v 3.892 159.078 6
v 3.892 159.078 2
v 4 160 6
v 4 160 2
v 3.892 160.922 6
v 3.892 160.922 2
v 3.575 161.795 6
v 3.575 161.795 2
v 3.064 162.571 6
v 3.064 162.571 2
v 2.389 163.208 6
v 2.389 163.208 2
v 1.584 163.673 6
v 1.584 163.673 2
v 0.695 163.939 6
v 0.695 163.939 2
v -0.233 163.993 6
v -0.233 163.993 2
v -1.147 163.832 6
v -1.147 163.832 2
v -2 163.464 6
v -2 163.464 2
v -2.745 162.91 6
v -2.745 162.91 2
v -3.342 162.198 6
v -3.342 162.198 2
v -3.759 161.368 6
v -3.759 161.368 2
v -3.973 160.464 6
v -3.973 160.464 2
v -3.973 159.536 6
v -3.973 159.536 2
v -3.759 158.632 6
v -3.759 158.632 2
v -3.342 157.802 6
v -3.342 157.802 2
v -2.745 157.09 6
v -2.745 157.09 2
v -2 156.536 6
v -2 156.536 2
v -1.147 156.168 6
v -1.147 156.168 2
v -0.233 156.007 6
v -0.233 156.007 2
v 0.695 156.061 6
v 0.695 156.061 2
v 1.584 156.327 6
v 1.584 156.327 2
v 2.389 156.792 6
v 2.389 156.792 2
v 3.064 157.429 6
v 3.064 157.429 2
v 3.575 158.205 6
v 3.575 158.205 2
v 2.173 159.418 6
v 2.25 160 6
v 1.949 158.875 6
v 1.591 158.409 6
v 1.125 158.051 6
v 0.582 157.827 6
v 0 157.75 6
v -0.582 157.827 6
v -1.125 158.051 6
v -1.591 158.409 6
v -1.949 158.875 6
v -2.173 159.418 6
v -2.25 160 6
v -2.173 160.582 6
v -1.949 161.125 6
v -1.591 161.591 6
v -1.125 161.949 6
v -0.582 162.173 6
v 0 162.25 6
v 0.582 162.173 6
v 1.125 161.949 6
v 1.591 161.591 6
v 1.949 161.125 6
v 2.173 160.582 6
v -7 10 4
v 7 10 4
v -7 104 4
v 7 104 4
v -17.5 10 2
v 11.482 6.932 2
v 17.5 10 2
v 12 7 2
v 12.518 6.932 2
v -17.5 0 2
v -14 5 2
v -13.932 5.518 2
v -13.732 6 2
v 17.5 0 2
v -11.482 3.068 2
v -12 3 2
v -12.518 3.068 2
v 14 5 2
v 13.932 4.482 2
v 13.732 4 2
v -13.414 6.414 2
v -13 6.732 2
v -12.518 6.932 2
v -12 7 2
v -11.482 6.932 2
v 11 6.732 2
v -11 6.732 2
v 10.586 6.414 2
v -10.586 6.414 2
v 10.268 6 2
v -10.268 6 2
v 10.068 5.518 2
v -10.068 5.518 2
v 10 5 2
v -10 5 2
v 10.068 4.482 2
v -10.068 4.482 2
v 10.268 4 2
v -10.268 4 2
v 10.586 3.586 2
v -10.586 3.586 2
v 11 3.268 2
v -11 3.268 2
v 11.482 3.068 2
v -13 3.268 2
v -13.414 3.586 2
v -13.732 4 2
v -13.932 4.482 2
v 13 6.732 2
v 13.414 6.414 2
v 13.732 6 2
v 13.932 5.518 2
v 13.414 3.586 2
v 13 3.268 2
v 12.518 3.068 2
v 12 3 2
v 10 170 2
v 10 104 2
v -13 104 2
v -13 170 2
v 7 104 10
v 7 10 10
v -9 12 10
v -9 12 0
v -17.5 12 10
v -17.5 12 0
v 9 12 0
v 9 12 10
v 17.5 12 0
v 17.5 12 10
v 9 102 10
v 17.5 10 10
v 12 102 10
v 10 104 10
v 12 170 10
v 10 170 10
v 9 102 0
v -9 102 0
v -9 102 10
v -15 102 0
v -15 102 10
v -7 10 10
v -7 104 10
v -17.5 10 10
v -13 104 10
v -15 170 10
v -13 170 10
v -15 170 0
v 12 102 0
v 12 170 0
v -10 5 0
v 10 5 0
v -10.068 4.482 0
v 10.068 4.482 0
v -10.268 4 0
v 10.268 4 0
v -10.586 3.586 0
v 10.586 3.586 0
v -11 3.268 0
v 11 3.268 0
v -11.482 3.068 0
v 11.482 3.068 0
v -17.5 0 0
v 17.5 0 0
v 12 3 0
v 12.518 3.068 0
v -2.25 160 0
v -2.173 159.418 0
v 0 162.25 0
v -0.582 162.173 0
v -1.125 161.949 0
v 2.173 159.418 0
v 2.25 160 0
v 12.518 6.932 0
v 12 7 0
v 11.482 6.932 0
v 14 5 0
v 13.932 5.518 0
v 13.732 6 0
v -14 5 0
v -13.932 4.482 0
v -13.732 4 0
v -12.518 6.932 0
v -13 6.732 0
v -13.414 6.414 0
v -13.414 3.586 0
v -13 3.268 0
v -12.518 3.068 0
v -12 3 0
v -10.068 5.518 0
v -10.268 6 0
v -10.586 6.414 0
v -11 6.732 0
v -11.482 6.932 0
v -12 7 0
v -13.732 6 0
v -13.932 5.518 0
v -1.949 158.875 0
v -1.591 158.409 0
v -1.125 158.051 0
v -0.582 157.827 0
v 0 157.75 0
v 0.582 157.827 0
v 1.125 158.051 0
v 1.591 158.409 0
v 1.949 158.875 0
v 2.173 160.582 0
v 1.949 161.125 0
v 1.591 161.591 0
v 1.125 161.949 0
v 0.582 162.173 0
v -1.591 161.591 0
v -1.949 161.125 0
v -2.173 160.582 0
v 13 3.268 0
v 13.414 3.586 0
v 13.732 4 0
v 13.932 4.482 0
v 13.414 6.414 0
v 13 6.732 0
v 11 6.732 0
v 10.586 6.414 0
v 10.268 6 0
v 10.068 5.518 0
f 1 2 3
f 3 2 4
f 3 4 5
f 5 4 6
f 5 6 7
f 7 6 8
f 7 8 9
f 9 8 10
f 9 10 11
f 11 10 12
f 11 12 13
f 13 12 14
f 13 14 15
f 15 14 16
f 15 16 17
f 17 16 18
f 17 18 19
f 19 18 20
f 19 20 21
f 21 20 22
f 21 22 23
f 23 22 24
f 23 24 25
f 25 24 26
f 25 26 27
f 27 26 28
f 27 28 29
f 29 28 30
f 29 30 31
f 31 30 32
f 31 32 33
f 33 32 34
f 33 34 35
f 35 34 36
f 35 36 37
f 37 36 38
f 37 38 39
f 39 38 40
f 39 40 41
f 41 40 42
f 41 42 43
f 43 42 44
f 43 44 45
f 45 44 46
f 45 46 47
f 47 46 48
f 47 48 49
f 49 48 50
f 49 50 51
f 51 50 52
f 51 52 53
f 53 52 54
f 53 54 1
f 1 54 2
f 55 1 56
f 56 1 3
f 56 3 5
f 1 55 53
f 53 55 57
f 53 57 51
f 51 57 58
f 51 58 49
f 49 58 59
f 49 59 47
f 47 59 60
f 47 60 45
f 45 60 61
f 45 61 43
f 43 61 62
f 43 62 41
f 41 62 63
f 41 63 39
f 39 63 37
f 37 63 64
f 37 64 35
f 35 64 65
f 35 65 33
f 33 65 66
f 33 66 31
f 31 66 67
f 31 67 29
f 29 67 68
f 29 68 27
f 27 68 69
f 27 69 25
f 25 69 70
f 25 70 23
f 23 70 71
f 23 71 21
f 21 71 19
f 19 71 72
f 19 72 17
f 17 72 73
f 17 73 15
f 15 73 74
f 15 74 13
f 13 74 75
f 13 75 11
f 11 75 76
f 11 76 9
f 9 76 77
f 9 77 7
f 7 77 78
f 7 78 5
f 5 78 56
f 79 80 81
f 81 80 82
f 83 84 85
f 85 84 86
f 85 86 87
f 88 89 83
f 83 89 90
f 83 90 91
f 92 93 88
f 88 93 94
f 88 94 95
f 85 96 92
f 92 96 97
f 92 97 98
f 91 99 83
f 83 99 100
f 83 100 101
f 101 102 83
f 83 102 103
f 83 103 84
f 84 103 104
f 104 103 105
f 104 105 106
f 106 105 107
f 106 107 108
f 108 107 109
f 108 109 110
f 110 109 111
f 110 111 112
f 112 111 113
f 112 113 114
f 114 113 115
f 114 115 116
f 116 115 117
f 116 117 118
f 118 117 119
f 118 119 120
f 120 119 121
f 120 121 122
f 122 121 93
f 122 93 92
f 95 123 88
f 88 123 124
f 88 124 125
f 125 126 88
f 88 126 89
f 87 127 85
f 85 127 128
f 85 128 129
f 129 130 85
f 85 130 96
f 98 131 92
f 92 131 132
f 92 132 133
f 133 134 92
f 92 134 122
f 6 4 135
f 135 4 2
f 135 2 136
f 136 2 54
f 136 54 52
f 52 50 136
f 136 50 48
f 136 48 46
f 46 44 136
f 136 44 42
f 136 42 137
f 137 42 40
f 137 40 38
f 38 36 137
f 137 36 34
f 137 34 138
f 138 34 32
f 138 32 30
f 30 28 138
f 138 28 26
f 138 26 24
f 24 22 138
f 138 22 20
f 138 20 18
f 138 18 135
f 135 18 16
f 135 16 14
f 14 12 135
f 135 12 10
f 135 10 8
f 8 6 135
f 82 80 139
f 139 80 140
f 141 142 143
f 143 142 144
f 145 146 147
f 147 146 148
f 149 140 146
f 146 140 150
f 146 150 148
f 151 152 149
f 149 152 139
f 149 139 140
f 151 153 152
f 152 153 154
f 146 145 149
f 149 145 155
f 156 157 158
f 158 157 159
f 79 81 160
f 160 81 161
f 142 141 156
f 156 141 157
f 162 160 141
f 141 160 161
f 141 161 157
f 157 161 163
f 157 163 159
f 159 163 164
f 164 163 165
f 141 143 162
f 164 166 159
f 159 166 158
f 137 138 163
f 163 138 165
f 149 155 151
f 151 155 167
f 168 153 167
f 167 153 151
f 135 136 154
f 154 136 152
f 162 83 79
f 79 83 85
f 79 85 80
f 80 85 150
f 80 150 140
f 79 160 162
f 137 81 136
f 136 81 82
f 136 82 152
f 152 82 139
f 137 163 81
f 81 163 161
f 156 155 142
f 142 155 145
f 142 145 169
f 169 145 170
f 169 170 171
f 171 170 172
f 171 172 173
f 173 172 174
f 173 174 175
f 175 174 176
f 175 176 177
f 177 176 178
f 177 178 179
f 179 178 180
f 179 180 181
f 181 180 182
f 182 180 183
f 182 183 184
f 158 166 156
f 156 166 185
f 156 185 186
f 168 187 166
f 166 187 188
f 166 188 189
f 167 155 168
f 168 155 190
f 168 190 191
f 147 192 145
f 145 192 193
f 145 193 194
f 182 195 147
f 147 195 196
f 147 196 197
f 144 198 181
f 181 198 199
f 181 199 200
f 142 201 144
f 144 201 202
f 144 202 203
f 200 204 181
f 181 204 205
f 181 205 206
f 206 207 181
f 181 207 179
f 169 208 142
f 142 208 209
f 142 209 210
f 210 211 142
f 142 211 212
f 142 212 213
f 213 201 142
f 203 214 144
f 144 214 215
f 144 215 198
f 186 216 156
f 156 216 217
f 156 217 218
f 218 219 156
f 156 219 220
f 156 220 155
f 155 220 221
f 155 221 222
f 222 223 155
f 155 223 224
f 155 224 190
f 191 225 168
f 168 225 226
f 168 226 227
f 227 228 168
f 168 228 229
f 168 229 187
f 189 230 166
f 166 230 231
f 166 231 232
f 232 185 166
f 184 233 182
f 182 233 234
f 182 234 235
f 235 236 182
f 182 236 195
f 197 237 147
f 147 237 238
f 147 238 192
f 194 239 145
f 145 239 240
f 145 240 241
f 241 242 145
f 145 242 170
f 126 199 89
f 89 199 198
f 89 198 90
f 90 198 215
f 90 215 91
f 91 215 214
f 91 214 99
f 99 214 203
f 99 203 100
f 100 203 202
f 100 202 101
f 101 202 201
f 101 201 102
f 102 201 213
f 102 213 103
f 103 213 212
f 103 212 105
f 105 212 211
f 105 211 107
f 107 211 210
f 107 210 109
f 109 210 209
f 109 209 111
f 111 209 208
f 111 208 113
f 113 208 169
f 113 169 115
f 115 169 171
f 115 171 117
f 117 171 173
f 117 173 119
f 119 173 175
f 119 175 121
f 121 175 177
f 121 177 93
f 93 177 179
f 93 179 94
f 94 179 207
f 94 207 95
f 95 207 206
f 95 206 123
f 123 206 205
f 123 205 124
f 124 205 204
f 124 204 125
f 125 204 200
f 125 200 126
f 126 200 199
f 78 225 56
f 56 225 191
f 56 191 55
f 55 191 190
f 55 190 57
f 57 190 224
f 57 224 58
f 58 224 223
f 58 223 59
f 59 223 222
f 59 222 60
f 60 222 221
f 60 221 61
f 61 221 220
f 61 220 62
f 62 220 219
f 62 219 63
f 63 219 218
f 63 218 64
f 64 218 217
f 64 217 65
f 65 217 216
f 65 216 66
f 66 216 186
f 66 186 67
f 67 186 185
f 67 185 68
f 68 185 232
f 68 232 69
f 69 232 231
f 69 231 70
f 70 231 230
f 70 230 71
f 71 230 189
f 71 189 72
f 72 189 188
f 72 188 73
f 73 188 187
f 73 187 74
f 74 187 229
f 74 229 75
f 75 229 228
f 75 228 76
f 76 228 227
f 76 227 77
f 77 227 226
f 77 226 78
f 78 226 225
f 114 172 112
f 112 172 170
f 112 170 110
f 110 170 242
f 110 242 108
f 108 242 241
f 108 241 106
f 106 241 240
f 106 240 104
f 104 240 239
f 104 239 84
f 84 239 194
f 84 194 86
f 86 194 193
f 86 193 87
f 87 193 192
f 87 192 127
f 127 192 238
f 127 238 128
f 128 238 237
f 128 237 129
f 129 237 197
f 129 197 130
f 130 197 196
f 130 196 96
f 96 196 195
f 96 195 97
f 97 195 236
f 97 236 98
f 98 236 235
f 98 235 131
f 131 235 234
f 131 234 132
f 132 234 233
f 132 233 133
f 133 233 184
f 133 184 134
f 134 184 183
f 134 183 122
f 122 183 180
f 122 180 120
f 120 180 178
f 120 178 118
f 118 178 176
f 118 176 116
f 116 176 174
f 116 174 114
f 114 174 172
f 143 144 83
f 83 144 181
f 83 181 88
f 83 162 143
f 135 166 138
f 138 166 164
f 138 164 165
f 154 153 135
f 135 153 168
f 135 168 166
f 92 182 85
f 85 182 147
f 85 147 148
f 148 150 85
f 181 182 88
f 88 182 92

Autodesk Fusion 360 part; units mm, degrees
sketch "スケッチ1" plane through (0, 0, 0) normal (0, 0, 1) x (1, 0, 0)
  line L0 (-17.5, 170) -> (17.5, 170)
  line L1 (17.5, 170) -> (17.5, 0)
  line L2 (17.5, 0) -> (-17.5, 0)
  line L3 (-17.5, 0) -> (-17.5, 170)
  circle A0 centre (12, 5) radius 2
  circle A1 centre (-12, 5) radius 2
  line L4 (12, 5) -> (-12, 5) construction
  circle A2 centre (0, 160) radius 2.25
  dimension "d1" = 170
  dimension "d2" = 35
  dimension "d3" = 4
  dimension "d4" = 4
  dimension "d5" = 24
  dimension "d6" = 5
  dimension "d7" = 5.5
  dimension "d8" = 4.5
  dimension "d9" = 155
extrude "押し出し1" add sketch "スケッチ1" along normal blind 2 makes body 1
sketch "スケッチ2" plane through (0, 0, 2) normal (0, 0, 1) x (-1, 0, 0)
  circle A0 centre (-12, -5) radius 2
  circle A1 centre (0, -160) radius 2.25
  circle A2 centre (12, -5) radius 2
  line L0 (17.5, 0) -> (-17.5, 0)
  line L1 (-17.5, 0) -> (-17.5, -170)
  line L2 (-17.5, -170) -> (17.5, -170)
  line L3 (17.5, -170) -> (17.5, 0)
  line L4 (-7, -170) -> (-17.5, -170)
  line L5 (-17.5, -170) -> (-17.5, -10)
  line L6 (-17.5, -10) -> (-7, -10)
  line L7 (-7, -10) -> (-7, -170)
  line L8 (17.5, -170) -> (7, -170)
  line L9 (7, -170) -> (7, -10)
  line L10 (7, -10) -> (17.5, -10)
  line L11 (17.5, -10) -> (17.5, -170)
  dimension "d12" = 10.5
  dimension "d13" = 10
  dimension "d14" = 10.5
  dimension "d15" = 10
extrude "押し出し2" cut sketch "スケッチ2" against normal blind 2 contours L2 L3 L8 L9 L10 L11 | L1 L2 L4 L5 L6 L7 bodies 1
sketch "スケッチ3" plane through (7, 0, 0) normal (1, 0, 0) x (0, 1, 0)
  line L0 (170, 2) -> (10, 2)
  line L1 (10, 2) -> (10, 0)
  line L2 (10, 0) -> (170, 0)
  line L3 (170, 0) -> (170, 2)
  line L4 (10, 10) -> (104, 10)
  line L5 (104, 10) -> (104, 0)
  line L6 (104, 0) -> (10, 0)
  line L7 (10, 0) -> (10, 10)
  dimension "d18" = 10
  dimension "d19" = 94
extrude "押し出し3" add sketch "スケッチ3" along normal blind 2 separate body contours L0 L1 L2 L5 L6 L7 | L0 L4 L5 L7 makes body 2
sketch "スケッチ4" plane through (-7, 0, 0) normal (-1, 0, 0) x (0, -1, 0)
  line L0 (-10, 2) -> (-170, 2)
  line L1 (-170, 2) -> (-170, 0)
  line L2 (-170, 0) -> (-10, 0)
  line L3 (-10, 0) -> (-10, 2)
  line L4 (-10, 10) -> (-104, 10)
  line L5 (-104, 10) -> (-104, 0)
  line L6 (-104, 0) -> (-10, 0)
  line L7 (-10, 0) -> (-10, 10)
  line L8 (-104, 10) -> (-104, 0)
  line L9 (-10, 0) -> (-10, 10)
  line L10 (-10, 10) -> (-104, 10)
extrude "押し出し4" add sketch "スケッチ4" along normal blind 2 separate body contours L0 L2 L3 L5 L6 L7 L8 L9 | L0 L4 L5 L7 L8 L9 L10 makes body 3
sketch "スケッチ5" plane through (0, 0, 2) normal (0, 0, 1) x (-1, 0, 0)
  line L0 (7, -170) -> (7, -10)
  line L1 (7, -10) -> (17.5, -10)
  line L2 (17.5, -10) -> (17.5, 0)
  line L3 (17.5, 0) -> (-17.5, 0)
  line L4 (-17.5, 0) -> (-17.5, -10)
  line L5 (-17.5, -10) -> (-7, -10)
  line L6 (-7, -10) -> (-7, -170)
  line L7 (-7, -170) -> (7, -170)
  circle A0 centre (12, -5) radius 2
  circle A1 centre (0, -160) radius 2.25
  circle A2 centre (-12, -5) radius 2
  line L8 (-7, -170) -> (-10, -170)
  line L9 (-10, -170) -> (-10, -104)
  line L10 (-10, -104) -> (-7, -104)
  line L11 (-7, -104) -> (-7, -170)
  line L12 (-7, -104) -> (-9, -104)
  line L13 (7, -170) -> (13, -170)
  line L14 (13, -170) -> (13, -104)
  line L15 (13, -104) -> (7, -104)
  line L16 (7, -104) -> (7, -170)
  line L17 (7, -104) -> (9, -104)
  dimension "d24" = 3
  dimension "d25" = 6
extrude "押し出し5" add sketch "スケッチ5" against normal blind 2 contours L0 L13 L14 L15 L16 L17 | L6 L8 L9 L10 L11 L12 bodies 1 2 3
sketch "スケッチ10" plane through (-13, 0, 0) normal (-1, 0, 0) x (0, -1, 0)
  line L0 (-104, 2) -> (-170, 2)
  line L1 (-170, 2) -> (-170, 0)
  line L2 (-170, 0) -> (-104, 0)
  line L3 (-104, 0) -> (-104, 2)
  line L4 (-104, 0) -> (-170, 0)
  line L5 (-170, 0) -> (-170, 10)
  line L6 (-170, 10) -> (-104, 10)
  line L7 (-104, 10) -> (-104, 0)
  point P0 (-104, 10)
extrude "押し出し8" add sketch "スケッチ10" along normal blind 2 separate body makes body 4
sketch "スケッチ11" plane through (10, 0, 0) normal (1, 0, 0) x (0, 1, 0)
  line L0 (170, 2) -> (104, 2)
  line L1 (104, 2) -> (104, 0)
  line L2 (104, 0) -> (170, 0)
  line L3 (170, 0) -> (170, 2)
  line L4 (104, 0) -> (170, 0)
  line L5 (170, 0) -> (170, 10)
  line L6 (170, 10) -> (104, 10)
  line L7 (104, 10) -> (104, 0)
  line L8 (104, 10) -> (10, 10)
extrude "押し出し9" add sketch "スケッチ11" along normal blind 2 separate body makes body 5
sketch "スケッチ12" plane through (0, 104, 0) normal (0, -1, 0) x (1, 0, 0)
  line L0 (-13, 0) -> (-13, 10)
  line L1 (-13, 10) -> (-15, 10)
  line L2 (-15, 10) -> (-15, 0)
  line L3 (-15, 0) -> (-13, 0)
  line L4 (-15, 10) -> (-7, 10)
  line L5 (-7, 10) -> (-7, 0)
  line L6 (-7, 0) -> (-15, 0)
  line L7 (-15, 0) -> (-15, 10)
  line L8 (-7, 2) -> (-7, 10)
  line L9 (17.5, 0) -> (-17.5, 0)
  line L10 (7, 10) -> (12, 10)
  line L11 (12, 10) -> (12, 0)
  line L12 (12, 0) -> (7, 0)
  line L13 (7, 0) -> (7, 10)
  line L14 (12, 10) -> (12, 0)
  line L15 (7, 2) -> (7, 10)
  line L16 (10, 10) -> (12, 10)
extrude "押し出し10" add sketch "スケッチ12" along normal blind 2 bodies 1 4 5
sketch "スケッチ13" plane through (0, 10, 0) normal (0, 1, 0) x (-1, 0, 0)
  line L0 (-9, 0) -> (-9, 2)
  line L1 (-9, 2) -> (-17.5, 2)
  line L2 (-17.5, 2) -> (-17.5, 0)
  line L3 (-17.5, 0) -> (-9, 0)
  line L4 (-17.5, 0) -> (-7, 0)
  line L5 (-7, 0) -> (-7, 10)
  line L6 (-7, 10) -> (-17.5, 10)
  line L7 (-17.5, 10) -> (-17.5, 0)
  line L8 (7, 10) -> (17.5, 10)
  line L9 (17.5, 10) -> (17.5, 0)
  line L10 (17.5, 0) -> (7, 0)
  line L11 (7, 0) -> (7, 10)
  point P0 (-7, 10)
  point P1 (7, 10)
  point P2 (17.5, 0)
extrude "押し出し11" add sketch "スケッチ13" along normal blind 2 bodies 1
sketch "スケッチ14" plane through (0, 0, 2) normal (0, 0, 1) x (-1, 0, 0)
  line L0 (7, -104) -> (7, -10)
  line L1 (7, -10) -> (17.5, -10)
  line L2 (17.5, -10) -> (17.5, 0)
  line L3 (17.5, 0) -> (-17.5, 0)
  line L4 (-17.5, 0) -> (-17.5, -10)
  line L5 (-17.5, -10) -> (-7, -10)
  line L6 (-7, -10) -> (-7, -104)
  line L7 (-7, -104) -> (-10, -104)
  line L8 (-10, -104) -> (-10, -170)
  line L9 (-10, -170) -> (13, -170)
  line L10 (13, -170) -> (13, -104)
  line L11 (13, -104) -> (7, -104)
  circle A0 centre (12, -5) radius 2
  circle A1 centre (0, -160) radius 2.25
  circle A2 centre (-12, -5) radius 2
  line L12 (7, -104) -> (-7, -104)
  line L13 (-7, -104) -> (-7, -10)
  line L14 (-7, -10) -> (7, -10)
  line L15 (7, -10) -> (7, -104)
extrude "押し出し12" add sketch "スケッチ14" along normal blind 2 contours L0 L6 L12 L13 L14 L15 bodies 1
sketch "スケッチ15" plane through (0, 0, 2) normal (0, 0, 1) x (-1, 0, 0)
  circle A0 centre (0, -160) radius 2.25
  line L0 (13, -104) -> (-10, -104)
  line L1 (-10, -104) -> (-10, -170)
  line L2 (-10, -170) -> (13, -170)
  line L3 (13, -170) -> (13, -104)
  circle A1 centre (0, -160) radius 4
  dimension "d43" = 8
extrude "押し出し13" add sketch "スケッチ15" along normal blind 4 contours A1 bodies 1
